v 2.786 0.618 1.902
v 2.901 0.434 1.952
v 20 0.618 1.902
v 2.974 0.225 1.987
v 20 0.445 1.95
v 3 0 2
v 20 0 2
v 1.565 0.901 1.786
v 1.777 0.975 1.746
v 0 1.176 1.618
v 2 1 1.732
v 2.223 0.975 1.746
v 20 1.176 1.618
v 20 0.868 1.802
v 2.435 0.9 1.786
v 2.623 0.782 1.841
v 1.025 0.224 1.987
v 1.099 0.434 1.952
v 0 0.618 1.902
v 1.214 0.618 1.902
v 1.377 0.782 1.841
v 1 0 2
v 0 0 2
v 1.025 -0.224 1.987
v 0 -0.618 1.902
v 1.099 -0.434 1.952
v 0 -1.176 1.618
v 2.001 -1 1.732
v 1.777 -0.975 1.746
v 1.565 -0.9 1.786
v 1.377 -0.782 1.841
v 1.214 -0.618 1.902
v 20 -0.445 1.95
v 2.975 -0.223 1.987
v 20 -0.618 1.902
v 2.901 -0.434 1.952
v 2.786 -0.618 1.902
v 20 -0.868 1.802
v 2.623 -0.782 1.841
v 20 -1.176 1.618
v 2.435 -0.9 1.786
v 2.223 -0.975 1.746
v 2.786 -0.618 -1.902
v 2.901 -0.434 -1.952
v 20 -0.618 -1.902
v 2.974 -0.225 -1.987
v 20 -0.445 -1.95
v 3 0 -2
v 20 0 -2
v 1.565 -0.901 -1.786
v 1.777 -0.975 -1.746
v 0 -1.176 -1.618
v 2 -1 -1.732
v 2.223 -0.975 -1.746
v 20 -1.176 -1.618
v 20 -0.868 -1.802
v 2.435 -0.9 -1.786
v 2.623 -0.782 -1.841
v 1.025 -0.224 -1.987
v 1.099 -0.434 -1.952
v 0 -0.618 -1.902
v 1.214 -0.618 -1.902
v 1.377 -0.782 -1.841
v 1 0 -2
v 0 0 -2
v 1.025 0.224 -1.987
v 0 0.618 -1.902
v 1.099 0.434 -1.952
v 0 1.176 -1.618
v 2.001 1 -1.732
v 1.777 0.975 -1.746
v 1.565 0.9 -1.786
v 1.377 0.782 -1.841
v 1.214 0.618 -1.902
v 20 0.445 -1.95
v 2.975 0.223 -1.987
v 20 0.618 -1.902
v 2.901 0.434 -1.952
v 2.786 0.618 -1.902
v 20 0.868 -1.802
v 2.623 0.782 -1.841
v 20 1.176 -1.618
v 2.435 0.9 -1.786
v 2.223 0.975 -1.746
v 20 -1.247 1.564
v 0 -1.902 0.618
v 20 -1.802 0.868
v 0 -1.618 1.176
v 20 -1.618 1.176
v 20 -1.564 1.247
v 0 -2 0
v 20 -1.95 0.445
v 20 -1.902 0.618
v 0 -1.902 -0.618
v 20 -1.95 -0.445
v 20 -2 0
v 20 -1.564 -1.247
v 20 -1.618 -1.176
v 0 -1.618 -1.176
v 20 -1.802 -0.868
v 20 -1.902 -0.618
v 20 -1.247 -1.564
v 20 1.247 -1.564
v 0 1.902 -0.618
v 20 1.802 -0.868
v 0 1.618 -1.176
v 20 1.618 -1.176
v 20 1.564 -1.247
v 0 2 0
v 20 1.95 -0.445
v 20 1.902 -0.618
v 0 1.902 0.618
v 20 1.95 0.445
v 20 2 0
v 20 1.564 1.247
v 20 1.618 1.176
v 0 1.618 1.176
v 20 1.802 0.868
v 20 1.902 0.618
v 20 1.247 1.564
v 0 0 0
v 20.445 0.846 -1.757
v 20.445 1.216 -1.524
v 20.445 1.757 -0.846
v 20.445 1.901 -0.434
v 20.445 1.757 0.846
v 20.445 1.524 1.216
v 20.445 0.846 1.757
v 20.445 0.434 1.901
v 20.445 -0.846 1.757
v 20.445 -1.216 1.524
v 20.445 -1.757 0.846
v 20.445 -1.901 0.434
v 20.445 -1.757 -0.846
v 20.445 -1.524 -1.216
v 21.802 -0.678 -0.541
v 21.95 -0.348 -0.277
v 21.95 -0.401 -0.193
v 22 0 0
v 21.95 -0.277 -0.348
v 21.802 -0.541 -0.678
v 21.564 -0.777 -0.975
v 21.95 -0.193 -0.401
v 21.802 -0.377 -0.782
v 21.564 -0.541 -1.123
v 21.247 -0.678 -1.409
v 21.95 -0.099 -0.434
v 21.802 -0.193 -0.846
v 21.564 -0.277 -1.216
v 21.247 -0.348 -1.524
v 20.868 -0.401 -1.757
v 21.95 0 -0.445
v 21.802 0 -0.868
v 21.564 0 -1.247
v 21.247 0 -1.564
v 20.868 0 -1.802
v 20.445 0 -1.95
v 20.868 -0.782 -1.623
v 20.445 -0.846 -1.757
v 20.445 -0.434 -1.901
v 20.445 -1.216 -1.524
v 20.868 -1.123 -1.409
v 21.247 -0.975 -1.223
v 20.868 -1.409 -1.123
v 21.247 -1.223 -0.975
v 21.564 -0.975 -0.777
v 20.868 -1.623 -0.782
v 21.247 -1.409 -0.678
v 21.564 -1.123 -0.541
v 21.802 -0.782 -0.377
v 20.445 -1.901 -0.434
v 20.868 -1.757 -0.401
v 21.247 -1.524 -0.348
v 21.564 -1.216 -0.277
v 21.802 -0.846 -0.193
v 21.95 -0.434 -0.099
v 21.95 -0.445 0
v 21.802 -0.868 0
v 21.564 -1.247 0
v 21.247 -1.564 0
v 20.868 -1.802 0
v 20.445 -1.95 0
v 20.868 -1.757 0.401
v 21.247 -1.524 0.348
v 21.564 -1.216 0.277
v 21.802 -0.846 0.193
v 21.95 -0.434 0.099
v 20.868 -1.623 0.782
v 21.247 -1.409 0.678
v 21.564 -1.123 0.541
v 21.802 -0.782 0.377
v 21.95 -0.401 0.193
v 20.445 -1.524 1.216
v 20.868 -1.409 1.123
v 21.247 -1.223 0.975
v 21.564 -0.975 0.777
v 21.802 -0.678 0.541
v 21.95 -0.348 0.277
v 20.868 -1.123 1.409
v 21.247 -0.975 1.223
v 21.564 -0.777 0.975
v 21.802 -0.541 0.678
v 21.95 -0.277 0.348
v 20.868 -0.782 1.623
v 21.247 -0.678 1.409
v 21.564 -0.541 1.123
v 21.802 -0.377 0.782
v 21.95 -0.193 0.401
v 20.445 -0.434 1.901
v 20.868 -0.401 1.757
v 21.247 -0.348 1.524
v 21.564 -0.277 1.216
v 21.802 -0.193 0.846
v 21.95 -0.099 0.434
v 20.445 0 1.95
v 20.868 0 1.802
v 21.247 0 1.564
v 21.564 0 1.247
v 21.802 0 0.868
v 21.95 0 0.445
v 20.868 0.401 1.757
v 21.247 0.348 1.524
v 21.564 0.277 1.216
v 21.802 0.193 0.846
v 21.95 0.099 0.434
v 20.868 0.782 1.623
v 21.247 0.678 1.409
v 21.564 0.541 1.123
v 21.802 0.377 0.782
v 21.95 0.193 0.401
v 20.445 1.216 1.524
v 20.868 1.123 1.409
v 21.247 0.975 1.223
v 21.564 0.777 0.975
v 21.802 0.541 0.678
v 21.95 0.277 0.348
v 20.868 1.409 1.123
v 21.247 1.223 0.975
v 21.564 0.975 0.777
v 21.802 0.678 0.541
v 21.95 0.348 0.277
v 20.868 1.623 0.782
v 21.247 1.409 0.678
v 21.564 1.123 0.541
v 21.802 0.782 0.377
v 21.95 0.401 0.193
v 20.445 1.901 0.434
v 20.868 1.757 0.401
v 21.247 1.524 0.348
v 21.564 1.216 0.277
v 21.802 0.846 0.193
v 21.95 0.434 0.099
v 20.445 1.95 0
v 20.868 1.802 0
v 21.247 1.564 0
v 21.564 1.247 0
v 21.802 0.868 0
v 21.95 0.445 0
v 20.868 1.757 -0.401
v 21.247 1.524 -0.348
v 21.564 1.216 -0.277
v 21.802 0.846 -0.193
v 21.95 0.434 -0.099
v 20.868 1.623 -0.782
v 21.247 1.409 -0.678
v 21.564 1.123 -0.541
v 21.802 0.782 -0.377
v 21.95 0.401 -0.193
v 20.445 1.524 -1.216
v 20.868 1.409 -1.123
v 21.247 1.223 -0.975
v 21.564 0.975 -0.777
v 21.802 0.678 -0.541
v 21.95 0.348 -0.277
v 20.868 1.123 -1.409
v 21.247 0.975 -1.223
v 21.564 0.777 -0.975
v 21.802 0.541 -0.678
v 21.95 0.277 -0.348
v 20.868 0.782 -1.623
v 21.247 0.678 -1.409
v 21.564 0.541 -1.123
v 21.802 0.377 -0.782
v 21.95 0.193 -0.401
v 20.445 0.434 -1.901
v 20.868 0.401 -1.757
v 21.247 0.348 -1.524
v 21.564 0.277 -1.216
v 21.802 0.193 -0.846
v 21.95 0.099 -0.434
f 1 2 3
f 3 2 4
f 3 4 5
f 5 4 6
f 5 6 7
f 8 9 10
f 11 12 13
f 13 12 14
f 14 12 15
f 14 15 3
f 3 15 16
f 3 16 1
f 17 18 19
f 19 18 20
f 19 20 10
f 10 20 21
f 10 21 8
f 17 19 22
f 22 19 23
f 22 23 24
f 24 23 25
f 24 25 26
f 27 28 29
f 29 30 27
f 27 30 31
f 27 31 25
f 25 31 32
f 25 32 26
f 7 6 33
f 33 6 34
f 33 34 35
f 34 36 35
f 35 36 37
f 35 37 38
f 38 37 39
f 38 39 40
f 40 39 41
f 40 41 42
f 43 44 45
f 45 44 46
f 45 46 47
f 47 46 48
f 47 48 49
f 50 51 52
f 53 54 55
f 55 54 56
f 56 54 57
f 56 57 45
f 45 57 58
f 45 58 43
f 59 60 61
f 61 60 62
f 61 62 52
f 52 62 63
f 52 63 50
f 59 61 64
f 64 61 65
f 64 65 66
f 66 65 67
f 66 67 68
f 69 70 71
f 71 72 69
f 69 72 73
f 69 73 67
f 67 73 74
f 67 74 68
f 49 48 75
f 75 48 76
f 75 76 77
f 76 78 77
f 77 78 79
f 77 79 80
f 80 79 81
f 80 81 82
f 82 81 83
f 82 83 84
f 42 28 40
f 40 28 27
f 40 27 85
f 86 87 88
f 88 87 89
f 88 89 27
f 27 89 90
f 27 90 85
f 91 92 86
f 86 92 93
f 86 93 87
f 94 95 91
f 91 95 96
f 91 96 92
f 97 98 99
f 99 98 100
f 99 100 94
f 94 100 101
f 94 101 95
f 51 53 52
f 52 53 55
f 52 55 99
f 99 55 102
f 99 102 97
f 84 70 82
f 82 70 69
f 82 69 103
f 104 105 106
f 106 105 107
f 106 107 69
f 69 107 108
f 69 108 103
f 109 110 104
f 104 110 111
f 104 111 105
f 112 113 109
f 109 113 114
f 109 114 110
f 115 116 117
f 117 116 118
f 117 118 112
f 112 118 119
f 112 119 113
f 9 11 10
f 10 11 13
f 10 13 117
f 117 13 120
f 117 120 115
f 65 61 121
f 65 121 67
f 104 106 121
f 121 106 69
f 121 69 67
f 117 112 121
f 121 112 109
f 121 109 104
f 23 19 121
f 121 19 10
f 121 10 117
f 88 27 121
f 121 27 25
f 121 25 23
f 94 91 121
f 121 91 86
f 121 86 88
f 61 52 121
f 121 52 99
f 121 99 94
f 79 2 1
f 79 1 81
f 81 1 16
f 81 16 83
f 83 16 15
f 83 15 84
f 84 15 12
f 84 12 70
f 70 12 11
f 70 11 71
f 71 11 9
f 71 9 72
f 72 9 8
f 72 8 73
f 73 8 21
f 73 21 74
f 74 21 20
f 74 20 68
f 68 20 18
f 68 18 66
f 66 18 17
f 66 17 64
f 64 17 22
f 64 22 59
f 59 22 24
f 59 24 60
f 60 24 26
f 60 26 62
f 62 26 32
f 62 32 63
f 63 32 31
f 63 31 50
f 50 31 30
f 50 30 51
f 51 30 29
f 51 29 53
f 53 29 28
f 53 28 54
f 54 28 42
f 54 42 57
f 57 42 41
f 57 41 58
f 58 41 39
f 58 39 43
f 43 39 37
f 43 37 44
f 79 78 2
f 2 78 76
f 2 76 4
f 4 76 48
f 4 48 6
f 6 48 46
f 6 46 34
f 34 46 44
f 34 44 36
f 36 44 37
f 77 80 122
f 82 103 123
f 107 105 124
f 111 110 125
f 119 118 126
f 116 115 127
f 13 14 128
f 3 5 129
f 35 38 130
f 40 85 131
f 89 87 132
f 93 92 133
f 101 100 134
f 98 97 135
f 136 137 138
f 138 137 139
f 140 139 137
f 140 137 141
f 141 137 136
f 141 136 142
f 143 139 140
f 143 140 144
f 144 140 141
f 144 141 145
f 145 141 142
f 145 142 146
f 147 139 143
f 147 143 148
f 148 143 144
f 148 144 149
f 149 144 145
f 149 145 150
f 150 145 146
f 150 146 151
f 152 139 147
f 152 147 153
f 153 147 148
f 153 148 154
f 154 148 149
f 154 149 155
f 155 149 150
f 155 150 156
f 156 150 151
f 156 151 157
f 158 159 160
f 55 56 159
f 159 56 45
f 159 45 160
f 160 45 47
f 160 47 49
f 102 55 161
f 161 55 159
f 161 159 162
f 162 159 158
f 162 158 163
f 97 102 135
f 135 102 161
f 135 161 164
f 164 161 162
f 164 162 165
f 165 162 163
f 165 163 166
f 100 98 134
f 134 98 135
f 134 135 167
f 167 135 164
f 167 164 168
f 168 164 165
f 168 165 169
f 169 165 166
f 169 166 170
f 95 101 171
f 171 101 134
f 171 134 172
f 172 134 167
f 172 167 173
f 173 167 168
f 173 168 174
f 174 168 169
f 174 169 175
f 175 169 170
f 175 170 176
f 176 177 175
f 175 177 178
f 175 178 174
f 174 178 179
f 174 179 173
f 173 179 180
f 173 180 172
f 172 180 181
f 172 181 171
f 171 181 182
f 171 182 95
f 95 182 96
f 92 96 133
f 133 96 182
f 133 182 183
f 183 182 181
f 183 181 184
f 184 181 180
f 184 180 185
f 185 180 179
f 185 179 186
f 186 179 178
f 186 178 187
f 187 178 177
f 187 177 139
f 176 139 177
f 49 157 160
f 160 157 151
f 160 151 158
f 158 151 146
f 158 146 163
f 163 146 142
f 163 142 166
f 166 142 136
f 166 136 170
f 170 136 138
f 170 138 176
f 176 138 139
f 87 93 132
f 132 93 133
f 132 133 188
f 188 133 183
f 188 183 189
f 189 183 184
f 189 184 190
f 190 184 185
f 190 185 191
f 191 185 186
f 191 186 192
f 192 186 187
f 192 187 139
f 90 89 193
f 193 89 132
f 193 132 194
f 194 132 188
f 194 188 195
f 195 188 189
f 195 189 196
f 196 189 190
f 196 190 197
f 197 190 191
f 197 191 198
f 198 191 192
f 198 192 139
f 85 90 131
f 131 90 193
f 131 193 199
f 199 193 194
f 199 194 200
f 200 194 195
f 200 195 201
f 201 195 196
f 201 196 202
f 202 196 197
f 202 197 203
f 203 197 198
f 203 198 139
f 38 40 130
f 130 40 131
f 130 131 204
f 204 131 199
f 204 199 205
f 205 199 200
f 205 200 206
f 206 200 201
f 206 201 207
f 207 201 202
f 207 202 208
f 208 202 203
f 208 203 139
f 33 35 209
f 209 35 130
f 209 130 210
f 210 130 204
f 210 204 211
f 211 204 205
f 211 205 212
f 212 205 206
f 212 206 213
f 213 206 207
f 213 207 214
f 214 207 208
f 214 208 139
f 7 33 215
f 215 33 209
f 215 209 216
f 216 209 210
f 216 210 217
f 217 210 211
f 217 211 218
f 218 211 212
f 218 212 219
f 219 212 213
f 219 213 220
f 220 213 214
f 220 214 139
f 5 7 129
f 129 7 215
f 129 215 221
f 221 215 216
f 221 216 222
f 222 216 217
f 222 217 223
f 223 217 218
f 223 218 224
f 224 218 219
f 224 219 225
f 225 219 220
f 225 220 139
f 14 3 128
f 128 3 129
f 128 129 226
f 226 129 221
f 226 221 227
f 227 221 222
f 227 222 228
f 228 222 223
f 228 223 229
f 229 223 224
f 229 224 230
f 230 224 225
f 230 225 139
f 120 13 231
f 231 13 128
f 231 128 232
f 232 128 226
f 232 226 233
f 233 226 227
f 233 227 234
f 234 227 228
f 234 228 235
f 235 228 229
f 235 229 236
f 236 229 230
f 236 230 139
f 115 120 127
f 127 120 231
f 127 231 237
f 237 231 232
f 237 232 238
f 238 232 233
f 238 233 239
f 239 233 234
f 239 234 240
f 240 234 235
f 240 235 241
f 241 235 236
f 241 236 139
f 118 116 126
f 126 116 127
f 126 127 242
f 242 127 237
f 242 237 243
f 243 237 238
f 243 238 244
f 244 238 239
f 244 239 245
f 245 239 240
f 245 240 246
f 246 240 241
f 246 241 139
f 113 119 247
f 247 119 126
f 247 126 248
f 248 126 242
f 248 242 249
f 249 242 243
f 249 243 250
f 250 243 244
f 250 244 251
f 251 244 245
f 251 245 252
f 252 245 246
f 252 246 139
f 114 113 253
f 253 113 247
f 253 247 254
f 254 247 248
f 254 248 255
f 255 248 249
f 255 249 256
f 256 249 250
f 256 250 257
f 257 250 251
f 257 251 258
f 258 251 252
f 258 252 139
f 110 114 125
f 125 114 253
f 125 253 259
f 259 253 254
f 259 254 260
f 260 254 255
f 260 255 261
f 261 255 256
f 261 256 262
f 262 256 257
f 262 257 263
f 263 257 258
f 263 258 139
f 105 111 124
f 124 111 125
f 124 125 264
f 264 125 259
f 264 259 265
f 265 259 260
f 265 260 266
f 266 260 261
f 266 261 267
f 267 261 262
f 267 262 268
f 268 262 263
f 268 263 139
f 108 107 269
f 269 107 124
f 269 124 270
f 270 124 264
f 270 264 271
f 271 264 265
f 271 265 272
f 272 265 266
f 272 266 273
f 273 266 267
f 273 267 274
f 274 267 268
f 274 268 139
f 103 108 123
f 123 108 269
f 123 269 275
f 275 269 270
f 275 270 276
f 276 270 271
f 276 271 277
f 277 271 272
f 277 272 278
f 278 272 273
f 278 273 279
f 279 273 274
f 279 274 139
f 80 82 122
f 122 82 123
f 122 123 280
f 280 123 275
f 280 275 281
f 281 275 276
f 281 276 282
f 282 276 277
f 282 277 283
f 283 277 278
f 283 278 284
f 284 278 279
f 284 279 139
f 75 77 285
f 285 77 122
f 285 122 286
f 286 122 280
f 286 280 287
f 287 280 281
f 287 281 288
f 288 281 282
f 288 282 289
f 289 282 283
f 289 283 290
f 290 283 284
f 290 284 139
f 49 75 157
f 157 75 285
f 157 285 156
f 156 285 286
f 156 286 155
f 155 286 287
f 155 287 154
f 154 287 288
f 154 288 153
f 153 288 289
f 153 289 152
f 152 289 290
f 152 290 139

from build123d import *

# Parameters (mm, degrees)
SKETCH1_R           = 2
BOSS_EXTRUDE1_DEPTH = 22
SKETCH2_R           = 1
CUT_EXTRUDE1_DEPTH  = 4
FILLET2_R           = 2


with BuildPart() as part:
    # Sketch1 → Boss-Extrude1 (new body)
    with BuildSketch(Plane(origin=(0, 0, 0), x_dir=(0, 0, -1), z_dir=(1, 0, 0))):
        Circle(SKETCH1_R)
    extrude(amount=BOSS_EXTRUDE1_DEPTH)

    # Sketch2 → Cut-Extrude1 (cut)
    with BuildSketch(Plane.XY.offset(2)):
        with Locations((2, 0)):
            Circle(SKETCH2_R)
    extrude(amount=-CUT_EXTRUDE1_DEPTH, mode=Mode.SUBTRACT)

    # Fillet2
    fillet2_edges = [part.edges().sort_by_distance(p)[0] for p in [
        (22, 0, 2),
    ]]
    fillet(fillet2_edges, radius=FILLET2_R)


solid = part.part
